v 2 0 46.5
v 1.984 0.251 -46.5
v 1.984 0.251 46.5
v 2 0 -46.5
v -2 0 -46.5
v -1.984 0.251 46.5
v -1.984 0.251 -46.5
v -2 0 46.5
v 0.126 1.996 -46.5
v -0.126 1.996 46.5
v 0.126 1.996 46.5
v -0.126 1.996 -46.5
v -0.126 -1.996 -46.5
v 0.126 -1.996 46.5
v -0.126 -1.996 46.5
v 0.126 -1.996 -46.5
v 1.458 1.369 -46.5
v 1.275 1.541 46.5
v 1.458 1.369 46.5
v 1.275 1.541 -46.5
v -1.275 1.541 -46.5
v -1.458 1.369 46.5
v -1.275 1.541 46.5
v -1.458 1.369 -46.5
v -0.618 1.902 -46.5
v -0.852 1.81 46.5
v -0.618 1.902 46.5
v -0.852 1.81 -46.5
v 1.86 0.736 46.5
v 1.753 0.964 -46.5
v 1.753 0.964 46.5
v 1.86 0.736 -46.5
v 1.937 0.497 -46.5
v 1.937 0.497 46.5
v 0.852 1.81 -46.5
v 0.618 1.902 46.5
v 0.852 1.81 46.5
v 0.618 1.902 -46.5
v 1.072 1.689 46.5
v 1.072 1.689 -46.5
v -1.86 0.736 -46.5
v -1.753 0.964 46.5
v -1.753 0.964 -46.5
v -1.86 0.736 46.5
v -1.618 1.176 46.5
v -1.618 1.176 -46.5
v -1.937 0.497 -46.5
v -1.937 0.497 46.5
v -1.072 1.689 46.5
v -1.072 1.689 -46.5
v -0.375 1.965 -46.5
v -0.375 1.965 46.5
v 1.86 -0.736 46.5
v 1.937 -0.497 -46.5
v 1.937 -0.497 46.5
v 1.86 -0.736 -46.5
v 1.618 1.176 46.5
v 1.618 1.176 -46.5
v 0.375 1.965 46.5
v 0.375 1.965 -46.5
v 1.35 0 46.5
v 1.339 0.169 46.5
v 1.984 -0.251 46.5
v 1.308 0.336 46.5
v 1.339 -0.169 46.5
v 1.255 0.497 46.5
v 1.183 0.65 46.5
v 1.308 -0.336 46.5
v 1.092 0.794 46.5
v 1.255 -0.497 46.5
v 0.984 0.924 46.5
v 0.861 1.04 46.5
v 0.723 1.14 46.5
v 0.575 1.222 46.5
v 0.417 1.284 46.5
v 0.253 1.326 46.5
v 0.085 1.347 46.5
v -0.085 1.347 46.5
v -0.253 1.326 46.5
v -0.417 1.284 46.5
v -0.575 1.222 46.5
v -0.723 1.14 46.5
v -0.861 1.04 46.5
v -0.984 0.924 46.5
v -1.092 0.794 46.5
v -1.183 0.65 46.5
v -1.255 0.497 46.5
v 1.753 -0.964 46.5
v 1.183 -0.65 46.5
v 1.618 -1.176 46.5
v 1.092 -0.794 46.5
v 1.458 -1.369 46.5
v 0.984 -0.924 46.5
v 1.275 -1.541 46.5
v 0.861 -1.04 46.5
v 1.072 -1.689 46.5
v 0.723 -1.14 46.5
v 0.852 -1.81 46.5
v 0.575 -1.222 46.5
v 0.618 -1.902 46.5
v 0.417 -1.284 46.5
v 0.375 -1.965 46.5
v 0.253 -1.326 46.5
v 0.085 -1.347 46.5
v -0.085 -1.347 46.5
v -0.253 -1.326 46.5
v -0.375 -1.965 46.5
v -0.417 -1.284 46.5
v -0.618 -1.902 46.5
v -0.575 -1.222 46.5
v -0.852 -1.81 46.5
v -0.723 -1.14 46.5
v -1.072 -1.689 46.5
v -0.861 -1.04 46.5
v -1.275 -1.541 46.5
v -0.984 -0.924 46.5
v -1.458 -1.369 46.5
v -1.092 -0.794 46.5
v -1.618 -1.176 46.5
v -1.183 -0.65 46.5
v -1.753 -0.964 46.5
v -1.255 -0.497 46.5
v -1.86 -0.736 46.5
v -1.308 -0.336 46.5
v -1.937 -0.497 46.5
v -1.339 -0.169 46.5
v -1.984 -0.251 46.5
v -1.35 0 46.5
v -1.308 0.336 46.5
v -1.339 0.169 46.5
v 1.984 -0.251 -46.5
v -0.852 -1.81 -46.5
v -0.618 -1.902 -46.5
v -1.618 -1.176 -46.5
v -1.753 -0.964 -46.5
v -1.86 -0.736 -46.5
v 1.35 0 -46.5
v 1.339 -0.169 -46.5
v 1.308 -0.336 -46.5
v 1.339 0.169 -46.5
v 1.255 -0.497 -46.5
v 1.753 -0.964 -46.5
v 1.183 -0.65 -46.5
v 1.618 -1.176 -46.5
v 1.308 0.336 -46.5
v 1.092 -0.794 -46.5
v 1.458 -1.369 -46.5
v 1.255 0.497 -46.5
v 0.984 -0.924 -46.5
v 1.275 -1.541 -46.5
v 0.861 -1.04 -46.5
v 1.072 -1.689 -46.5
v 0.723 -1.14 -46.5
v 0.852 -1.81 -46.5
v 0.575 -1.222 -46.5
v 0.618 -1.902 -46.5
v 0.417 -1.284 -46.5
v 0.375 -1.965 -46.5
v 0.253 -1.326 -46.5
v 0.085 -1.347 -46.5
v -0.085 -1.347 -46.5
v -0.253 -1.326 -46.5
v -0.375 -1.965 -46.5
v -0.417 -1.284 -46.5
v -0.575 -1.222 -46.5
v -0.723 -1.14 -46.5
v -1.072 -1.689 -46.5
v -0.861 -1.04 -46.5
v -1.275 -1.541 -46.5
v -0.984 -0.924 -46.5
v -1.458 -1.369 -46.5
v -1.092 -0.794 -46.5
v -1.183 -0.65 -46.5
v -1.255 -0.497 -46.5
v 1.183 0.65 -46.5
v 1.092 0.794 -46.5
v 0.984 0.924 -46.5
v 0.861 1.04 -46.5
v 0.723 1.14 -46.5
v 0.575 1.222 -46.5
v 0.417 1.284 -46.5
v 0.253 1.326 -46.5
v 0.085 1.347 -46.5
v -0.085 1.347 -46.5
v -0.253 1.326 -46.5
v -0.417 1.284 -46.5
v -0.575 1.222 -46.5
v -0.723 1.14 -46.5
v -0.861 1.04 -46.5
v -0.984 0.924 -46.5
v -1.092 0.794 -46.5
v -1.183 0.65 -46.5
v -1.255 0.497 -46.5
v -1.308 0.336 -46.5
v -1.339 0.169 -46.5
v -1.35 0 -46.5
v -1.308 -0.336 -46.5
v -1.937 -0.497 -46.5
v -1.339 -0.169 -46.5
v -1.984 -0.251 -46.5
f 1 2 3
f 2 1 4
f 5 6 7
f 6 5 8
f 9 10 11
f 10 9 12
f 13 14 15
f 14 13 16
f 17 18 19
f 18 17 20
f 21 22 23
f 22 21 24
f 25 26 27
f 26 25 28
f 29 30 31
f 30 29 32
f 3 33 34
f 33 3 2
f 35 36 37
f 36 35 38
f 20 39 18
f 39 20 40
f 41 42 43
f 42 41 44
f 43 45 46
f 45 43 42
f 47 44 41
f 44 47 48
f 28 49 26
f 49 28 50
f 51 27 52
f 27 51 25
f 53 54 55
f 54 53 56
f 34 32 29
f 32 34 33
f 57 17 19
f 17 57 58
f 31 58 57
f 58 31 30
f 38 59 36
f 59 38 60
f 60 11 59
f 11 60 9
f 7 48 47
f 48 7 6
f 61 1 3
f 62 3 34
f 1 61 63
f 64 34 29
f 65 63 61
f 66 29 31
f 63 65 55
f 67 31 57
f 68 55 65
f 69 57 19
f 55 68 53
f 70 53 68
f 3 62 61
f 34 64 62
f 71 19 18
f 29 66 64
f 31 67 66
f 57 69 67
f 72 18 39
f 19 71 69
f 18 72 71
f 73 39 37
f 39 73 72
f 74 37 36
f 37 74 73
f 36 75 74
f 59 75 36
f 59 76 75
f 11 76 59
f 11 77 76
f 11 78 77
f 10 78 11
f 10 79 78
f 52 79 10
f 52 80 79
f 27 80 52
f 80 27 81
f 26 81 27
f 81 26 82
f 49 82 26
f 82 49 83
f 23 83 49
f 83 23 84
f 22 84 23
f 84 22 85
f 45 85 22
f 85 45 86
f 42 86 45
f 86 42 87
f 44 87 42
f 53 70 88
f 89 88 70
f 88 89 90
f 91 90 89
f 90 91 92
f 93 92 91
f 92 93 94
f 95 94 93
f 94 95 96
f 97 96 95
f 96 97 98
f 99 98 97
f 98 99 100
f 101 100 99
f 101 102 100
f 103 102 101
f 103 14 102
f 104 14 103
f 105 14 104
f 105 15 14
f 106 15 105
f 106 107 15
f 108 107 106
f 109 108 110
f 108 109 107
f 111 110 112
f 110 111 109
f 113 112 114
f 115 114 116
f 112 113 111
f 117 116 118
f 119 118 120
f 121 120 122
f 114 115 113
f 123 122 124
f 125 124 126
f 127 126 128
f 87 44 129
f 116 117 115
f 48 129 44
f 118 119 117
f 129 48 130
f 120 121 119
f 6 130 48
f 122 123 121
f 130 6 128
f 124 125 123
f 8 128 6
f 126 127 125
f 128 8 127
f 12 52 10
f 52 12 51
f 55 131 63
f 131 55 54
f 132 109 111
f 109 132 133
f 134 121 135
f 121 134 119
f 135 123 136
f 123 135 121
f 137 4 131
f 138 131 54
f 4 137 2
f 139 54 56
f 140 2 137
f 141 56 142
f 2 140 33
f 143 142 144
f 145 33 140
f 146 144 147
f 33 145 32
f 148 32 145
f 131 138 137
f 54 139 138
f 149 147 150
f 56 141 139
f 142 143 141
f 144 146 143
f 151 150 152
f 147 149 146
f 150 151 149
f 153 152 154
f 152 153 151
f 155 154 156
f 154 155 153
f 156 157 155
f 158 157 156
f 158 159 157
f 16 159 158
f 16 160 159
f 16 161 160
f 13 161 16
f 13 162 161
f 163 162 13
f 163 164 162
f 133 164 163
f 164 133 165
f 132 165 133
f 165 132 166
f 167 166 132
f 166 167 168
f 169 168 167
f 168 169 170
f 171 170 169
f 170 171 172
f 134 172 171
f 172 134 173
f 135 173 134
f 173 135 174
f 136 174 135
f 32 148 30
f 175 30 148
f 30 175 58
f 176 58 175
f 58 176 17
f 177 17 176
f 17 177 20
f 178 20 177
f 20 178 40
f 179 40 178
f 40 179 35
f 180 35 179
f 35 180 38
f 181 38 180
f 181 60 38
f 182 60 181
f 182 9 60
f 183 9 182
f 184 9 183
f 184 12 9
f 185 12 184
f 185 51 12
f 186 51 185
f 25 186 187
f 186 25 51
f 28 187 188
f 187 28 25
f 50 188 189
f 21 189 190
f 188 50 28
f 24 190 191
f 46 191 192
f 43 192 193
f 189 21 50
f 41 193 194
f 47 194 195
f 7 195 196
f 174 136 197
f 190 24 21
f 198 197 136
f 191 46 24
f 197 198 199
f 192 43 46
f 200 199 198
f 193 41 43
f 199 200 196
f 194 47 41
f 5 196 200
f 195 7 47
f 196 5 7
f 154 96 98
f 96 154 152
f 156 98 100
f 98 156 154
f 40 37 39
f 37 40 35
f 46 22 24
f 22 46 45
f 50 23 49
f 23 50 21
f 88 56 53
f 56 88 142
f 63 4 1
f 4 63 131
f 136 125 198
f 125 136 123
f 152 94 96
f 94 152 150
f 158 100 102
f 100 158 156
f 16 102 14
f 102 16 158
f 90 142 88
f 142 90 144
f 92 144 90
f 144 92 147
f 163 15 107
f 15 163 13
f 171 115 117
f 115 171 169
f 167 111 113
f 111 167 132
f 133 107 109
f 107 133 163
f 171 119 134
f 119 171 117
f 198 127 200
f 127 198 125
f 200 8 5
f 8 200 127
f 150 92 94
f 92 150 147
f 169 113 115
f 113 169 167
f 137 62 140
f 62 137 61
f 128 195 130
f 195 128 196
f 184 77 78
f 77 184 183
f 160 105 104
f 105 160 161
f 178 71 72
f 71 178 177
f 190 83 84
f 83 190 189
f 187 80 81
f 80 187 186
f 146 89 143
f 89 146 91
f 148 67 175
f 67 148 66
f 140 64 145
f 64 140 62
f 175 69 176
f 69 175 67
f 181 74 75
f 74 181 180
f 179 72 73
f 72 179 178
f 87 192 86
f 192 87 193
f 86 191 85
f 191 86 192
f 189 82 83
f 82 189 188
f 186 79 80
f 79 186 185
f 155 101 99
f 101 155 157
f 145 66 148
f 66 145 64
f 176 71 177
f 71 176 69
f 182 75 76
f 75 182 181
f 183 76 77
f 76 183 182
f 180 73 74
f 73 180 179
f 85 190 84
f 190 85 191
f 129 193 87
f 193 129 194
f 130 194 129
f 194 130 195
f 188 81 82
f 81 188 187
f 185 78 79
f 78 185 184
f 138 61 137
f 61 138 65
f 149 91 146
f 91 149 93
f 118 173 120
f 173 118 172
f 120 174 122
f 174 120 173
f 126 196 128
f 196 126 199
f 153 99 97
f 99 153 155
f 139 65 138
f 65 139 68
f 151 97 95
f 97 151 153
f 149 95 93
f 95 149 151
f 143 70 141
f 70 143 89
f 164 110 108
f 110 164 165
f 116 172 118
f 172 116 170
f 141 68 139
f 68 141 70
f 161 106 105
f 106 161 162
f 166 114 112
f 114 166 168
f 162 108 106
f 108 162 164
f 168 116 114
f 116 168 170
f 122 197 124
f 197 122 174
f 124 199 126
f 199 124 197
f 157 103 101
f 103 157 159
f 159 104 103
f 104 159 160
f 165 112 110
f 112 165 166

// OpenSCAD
$fn = 50;


difference() {
	union() {
		translate(v = [0, 0, -46.5000000000]) {
			cylinder(h = 93, r = 2.0000000000);
		}
	}
	union() {
		translate(v = [0, 0, -100.0000000000]) {
			cylinder(h = 200, r = 1.3500000000);
		}
	}
}
